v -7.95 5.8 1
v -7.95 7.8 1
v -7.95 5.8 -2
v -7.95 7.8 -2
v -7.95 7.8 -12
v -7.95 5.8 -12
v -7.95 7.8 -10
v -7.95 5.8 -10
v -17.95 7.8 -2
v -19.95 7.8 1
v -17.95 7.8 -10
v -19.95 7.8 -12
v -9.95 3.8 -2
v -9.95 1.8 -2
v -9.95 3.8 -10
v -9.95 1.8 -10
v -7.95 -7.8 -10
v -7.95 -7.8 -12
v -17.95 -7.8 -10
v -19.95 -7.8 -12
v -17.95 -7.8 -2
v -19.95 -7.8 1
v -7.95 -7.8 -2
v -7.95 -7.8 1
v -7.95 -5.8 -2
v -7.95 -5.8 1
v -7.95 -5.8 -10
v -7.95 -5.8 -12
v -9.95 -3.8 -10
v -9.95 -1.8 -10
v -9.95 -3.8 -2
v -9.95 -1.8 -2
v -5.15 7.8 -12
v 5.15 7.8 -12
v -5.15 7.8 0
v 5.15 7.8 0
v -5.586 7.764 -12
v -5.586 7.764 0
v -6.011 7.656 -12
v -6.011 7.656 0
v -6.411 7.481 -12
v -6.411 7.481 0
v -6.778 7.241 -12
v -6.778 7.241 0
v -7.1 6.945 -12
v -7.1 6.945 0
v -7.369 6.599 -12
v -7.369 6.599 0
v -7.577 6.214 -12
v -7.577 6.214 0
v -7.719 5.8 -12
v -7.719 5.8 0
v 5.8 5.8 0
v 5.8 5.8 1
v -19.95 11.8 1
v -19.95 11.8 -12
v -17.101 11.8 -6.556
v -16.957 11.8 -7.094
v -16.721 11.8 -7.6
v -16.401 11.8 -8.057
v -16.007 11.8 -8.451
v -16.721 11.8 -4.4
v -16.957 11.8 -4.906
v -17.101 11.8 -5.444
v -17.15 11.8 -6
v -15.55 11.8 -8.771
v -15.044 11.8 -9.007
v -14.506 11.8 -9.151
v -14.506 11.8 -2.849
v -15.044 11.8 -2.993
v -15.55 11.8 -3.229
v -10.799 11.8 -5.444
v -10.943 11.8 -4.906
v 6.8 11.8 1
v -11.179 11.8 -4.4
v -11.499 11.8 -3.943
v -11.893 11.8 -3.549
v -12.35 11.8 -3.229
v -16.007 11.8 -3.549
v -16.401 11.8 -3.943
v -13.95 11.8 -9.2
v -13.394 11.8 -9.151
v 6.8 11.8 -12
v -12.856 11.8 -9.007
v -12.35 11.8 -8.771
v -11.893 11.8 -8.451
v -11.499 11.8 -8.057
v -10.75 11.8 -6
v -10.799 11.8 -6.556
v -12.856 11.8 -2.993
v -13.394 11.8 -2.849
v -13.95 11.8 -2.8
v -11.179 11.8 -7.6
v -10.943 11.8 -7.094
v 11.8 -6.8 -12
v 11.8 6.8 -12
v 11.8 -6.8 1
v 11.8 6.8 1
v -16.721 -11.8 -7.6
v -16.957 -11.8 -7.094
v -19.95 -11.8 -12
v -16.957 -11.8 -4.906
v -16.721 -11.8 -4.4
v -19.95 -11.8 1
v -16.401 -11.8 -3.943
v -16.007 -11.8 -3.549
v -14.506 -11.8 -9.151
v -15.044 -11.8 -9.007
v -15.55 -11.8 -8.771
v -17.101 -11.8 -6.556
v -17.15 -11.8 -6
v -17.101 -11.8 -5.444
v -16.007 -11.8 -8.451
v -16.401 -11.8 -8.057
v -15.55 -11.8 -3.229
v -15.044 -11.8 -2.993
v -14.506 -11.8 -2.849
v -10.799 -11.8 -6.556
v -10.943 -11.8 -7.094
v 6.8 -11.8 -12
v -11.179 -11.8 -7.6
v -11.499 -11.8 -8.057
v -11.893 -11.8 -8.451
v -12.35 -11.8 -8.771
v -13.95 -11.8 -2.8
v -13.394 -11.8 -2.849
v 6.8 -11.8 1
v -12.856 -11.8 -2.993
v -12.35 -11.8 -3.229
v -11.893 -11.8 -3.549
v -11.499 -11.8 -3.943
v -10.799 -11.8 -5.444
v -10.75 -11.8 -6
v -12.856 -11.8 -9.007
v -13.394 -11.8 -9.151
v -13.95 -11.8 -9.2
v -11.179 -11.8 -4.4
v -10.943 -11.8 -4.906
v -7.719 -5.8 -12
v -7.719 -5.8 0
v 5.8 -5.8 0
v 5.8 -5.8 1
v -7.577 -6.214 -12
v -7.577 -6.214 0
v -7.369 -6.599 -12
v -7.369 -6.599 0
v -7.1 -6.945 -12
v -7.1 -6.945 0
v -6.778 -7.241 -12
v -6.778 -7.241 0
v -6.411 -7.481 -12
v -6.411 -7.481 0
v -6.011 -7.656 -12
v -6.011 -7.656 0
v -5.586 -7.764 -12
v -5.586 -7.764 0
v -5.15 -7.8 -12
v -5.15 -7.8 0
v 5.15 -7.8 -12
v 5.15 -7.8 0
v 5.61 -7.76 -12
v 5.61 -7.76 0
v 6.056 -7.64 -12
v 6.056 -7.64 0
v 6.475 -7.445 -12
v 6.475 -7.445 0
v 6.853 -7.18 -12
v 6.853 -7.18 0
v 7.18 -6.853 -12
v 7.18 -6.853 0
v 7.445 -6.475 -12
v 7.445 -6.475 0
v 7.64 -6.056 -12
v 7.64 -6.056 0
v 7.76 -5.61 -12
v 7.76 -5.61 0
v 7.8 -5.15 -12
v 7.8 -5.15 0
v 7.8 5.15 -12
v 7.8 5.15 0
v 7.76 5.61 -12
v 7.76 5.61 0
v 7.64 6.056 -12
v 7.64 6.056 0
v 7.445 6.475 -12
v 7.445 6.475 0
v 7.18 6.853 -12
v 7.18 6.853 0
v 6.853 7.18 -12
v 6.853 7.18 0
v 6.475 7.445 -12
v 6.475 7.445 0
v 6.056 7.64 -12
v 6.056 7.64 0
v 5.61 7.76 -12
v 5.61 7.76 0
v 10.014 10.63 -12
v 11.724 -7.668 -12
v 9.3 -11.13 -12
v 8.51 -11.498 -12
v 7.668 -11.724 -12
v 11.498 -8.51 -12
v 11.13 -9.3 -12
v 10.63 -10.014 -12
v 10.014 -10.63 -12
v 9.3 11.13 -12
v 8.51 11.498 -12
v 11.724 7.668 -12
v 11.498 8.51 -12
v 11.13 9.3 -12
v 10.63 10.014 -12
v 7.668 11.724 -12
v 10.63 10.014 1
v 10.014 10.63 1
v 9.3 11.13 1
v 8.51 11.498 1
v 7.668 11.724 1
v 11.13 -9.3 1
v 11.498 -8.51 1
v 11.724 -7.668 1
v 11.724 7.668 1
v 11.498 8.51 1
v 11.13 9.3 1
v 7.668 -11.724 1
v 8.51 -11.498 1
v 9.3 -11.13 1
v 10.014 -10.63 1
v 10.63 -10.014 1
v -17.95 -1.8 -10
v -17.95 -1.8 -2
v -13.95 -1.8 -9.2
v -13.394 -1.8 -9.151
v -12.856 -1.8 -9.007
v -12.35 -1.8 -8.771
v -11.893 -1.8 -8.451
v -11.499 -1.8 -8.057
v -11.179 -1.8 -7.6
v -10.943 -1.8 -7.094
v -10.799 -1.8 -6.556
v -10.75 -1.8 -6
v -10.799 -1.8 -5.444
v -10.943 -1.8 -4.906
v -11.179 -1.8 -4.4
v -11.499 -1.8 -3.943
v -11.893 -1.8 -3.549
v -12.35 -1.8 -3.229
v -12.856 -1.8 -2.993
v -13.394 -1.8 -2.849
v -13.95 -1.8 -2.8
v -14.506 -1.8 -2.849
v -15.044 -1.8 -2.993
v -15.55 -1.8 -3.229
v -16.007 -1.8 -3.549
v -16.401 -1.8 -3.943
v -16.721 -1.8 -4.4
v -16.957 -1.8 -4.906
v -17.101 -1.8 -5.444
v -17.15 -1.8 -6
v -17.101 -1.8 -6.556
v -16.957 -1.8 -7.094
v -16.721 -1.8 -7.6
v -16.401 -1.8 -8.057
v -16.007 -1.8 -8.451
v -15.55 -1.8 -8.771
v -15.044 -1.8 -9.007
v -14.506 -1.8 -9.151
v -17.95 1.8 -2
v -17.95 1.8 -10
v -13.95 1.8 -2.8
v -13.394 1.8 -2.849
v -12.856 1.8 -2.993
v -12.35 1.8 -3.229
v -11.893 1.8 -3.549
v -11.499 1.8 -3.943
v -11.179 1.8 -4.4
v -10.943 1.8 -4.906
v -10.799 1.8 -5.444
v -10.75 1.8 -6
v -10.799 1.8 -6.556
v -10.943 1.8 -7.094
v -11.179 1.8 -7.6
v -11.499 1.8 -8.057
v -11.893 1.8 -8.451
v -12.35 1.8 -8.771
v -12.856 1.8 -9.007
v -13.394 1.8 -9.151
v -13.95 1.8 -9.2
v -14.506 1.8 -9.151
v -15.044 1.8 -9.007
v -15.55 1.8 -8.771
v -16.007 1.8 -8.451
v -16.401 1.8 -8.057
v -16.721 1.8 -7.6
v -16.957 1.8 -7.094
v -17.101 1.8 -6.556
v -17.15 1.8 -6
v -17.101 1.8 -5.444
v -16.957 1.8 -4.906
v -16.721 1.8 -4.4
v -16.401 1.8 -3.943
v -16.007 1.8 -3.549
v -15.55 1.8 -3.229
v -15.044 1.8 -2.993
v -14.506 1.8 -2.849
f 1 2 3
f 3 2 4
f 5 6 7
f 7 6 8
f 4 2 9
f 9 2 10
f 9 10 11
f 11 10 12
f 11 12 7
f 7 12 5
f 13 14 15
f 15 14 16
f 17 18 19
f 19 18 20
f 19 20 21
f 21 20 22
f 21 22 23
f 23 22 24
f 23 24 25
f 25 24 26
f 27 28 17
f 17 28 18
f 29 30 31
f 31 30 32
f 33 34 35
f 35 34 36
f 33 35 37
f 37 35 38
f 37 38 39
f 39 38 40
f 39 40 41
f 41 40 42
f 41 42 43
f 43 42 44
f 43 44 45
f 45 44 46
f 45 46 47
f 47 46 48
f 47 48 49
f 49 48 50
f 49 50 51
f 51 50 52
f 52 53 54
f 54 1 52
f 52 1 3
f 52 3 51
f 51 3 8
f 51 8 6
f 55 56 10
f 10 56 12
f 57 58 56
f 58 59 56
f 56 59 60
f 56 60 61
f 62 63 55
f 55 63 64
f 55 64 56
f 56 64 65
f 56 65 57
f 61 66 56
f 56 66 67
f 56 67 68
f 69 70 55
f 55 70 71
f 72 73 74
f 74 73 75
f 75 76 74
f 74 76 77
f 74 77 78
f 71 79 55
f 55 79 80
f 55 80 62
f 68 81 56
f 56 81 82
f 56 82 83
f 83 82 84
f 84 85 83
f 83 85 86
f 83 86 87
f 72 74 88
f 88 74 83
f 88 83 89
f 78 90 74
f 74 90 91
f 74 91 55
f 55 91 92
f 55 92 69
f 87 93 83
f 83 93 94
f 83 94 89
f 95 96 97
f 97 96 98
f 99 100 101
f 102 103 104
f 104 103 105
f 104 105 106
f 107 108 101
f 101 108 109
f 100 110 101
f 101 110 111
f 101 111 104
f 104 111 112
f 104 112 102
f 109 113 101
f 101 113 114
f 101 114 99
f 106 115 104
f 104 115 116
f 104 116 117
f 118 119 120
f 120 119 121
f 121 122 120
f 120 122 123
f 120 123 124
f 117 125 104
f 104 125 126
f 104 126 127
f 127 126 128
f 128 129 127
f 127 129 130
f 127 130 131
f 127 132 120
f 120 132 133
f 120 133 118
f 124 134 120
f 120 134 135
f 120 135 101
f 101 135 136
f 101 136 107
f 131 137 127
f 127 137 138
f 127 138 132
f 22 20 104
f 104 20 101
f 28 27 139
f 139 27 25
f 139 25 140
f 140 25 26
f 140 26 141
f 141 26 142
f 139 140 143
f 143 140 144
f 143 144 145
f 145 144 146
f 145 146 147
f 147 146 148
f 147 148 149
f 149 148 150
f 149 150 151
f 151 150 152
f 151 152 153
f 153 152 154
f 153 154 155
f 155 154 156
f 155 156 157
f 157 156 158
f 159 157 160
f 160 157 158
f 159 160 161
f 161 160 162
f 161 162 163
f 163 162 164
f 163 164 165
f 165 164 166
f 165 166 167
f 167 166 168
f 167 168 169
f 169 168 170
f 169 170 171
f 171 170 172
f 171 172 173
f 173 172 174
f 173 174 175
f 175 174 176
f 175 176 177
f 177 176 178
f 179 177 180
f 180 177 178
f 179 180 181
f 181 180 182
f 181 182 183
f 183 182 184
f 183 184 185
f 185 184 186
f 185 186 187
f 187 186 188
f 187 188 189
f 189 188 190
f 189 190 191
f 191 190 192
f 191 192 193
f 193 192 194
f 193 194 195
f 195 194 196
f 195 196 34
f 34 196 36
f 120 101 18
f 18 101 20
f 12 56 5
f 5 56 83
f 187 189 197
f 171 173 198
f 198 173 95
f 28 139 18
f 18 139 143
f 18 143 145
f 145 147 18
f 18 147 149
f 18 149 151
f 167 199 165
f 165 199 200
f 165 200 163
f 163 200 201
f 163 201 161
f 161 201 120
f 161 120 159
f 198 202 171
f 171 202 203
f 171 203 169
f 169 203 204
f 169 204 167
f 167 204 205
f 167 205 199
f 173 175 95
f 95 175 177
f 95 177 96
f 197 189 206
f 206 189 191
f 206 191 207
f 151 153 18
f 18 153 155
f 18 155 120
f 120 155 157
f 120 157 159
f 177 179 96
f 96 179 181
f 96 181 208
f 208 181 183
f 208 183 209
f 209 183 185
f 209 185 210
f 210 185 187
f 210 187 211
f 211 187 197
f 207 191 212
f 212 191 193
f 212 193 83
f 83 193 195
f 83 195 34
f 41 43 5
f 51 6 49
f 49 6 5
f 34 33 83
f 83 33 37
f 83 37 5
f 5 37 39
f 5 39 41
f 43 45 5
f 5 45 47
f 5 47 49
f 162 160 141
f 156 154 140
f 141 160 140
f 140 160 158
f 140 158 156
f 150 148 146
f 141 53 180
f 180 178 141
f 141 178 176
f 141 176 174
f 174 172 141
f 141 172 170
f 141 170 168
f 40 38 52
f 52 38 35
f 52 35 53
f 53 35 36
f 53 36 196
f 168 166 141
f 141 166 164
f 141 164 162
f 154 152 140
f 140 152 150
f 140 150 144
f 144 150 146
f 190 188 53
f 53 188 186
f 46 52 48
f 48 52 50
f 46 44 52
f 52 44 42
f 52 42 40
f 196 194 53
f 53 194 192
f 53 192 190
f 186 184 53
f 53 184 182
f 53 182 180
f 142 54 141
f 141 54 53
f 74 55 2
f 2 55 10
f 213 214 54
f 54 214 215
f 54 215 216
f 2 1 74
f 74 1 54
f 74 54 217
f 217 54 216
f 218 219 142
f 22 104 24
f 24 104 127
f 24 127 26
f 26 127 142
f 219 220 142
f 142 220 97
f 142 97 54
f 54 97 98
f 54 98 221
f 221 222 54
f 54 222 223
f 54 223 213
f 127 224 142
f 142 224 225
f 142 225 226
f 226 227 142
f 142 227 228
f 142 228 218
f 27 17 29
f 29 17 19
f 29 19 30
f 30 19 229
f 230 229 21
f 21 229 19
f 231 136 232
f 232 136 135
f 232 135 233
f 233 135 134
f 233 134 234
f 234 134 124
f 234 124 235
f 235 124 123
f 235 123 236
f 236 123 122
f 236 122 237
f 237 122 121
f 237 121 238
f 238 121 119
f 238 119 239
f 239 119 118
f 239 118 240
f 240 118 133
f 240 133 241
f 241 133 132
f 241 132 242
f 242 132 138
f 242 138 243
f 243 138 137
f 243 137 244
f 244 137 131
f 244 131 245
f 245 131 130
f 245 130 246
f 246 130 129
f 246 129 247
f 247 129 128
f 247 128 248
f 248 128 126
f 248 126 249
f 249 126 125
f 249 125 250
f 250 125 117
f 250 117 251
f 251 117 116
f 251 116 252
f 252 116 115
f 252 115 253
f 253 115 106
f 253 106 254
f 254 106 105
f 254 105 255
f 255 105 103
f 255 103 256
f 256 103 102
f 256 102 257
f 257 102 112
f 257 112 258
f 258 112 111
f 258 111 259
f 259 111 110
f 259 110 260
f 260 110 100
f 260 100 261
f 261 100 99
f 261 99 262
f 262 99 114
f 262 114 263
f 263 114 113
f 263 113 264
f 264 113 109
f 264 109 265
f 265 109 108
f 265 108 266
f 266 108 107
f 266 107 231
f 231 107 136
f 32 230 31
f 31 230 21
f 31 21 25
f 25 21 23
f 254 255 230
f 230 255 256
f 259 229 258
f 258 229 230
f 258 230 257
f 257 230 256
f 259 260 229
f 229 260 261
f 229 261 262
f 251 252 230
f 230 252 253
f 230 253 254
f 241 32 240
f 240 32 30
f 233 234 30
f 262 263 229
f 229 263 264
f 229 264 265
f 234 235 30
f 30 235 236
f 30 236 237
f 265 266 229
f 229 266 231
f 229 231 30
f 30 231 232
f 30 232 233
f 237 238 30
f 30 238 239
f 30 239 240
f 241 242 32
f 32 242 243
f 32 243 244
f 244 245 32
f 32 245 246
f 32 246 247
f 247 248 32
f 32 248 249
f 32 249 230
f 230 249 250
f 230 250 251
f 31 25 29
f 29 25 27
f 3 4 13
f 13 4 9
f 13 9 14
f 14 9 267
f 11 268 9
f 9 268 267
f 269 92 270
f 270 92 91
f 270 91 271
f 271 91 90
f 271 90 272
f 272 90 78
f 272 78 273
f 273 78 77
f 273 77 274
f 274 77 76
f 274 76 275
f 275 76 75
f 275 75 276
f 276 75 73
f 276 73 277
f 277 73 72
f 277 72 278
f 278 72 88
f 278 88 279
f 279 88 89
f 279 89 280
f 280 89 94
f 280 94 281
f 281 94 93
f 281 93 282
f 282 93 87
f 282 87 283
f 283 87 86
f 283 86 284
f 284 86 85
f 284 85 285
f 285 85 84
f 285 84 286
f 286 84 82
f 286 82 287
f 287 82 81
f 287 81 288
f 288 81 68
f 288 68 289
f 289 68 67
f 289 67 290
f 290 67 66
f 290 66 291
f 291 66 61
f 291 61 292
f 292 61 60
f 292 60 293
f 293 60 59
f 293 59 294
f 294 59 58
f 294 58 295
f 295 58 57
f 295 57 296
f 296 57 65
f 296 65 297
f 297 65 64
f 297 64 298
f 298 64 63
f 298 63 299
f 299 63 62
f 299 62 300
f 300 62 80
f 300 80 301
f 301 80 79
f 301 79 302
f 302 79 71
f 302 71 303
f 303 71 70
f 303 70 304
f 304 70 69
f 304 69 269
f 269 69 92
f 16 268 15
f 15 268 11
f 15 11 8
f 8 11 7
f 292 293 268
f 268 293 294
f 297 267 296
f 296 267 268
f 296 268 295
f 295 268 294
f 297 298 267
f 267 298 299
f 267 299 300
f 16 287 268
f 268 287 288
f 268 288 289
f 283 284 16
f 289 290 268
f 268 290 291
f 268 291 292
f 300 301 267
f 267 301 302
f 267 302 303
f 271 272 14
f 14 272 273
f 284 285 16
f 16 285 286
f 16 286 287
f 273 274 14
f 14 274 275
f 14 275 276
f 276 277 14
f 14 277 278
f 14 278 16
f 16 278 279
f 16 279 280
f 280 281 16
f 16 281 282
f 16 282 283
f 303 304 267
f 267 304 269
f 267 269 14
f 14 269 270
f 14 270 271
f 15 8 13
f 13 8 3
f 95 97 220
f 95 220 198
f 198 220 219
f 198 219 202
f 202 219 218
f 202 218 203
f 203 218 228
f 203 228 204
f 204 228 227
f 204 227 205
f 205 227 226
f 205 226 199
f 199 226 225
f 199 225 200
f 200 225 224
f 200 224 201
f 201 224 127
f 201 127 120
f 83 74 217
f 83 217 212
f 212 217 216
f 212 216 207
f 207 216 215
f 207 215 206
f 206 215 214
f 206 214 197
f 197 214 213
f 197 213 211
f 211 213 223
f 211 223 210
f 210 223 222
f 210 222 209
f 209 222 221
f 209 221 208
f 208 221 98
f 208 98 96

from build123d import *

# Parameters (mm, degrees)
EXTRUDE_1_DEPTH     = 12
EXTRUDE_2_DEPTH     = 1
SKETCH_2_W          = 8
SKETCH_2_H          = 8
SKETCH_2_R          = 3.2
EXTRUDE_3_DEPTH     = 10
CUT_EXTRUDE_2_REACH = 35.151
SKETCH_2_2_R        = 3.2
SKETCH_2_4_W        = 2
SKETCH_2_4_H        = 8
EXTRUDE_4_DEPTH     = 6
CHAMFER_1_SIZE      = 2
EXTRUDE_START       = -19.6
SKETCH_2_5_W        = 2
SKETCH_2_5_H        = 8
EXTRUDE_5_DEPTH     = 2
CHAMFER_2_SIZE      = 2
FILLET_1_R          = 5


with BuildPart() as part:
    # 草图1 → 凸台-拉伸1 (new body)
    with BuildSketch(Plane.XY):
        Polygon((-19.95, -7.8), (7.8, -7.8), (7.8, 7.8), (-19.95, 7.8), (-19.95, 11.8), (11.8, 11.8), (11.8, -11.8), (-19.95, -11.8), align=None)
        with BuildLine():
            Line((-5.15, 7.8), (-7.95, 7.8))
            Line((-7.95, 7.8), (-7.95, 5.8))
            Line((-7.95, 5.8), (-7.719046516, 5.8))
            ThreePointArc((-7.719046516, 5.8), (-6.77788206, 7.241052367), (-5.15, 7.8))
        make_face()
        with BuildLine():
            Line((-7.95, -5.8), (-7.95, -7.8))
            Line((-7.95, -7.8), (-5.15, -7.8))
            ThreePointArc((-5.15, -7.8), (-6.77788206, -7.241052367), (-7.719046516, -5.8))
            Line((-7.719046516, -5.8), (-7.95, -5.8))
        make_face()
        with BuildLine():
            ThreePointArc((7.8, -5.15), (7.02383297, -7.02383297), (5.15, -7.8))
            Line((5.15, -7.8), (7.8, -7.8))
            Line((7.8, -7.8), (7.8, -5.15))
        make_face()
        with BuildLine():
            ThreePointArc((5.15, 7.8), (7.02383297, 7.02383297), (7.8, 5.15))
            Line((7.8, 5.15), (7.8, 7.8))
            Line((7.8, 7.8), (5.15, 7.8))
        make_face()
    extrude(amount=-EXTRUDE_1_DEPTH)

    # 草图1<3> → 凸台-拉伸2 (add)
    with BuildSketch(Plane.XY):
        Polygon((-7.95, -7.8), (-19.95, -7.8), (-19.95, -11.8), (11.8, -11.8), (11.8, 11.8), (-19.95, 11.8), (-19.95, 7.8), (-7.95, 7.8), (-7.95, 5.8), (5.8, 5.8), (5.8, -5.8), (-7.95, -5.8), align=None)
    extrude(amount=EXTRUDE_2_DEPTH)

    # 草图2 → 凸台-拉伸3 (add)
    with BuildSketch(Plane.XZ.offset(11.8)):
        with Locations((-13.95, -6)):
            Rectangle(SKETCH_2_W, SKETCH_2_H)
        with Locations(Location((-13.95, -6, 0), (0, 0, 270))):
            Circle(SKETCH_2_R, mode=Mode.SUBTRACT)
    extrude_3 = extrude(amount=-EXTRUDE_3_DEPTH)

    # 草图2<2> → 切除-拉伸2 (cut, up to next)
    with BuildSketch(Plane.XZ.offset(11.8), mode=Mode.PRIVATE) as cut_extrude_2_sk1:
        with Locations(Location((-13.95, -6, 0), (0, 0, 270))):
            Circle(SKETCH_2_2_R)
    cut_extrude_2_tool1 = extrude(cut_extrude_2_sk1.sketch, amount=-CUT_EXTRUDE_2_REACH, mode=Mode.PRIVATE) & part.part
    cut_extrude_2 = cut_extrude_2_tool1.solids().sort_by_distance((-13.95, -11.8, -6))[0]
    add(cut_extrude_2, mode=Mode.SUBTRACT)

    # 草图2<4> → 凸台-拉伸4 (add)
    with BuildSketch(Plane.XZ.offset(11.8)):
        with Locations((-8.95, -6)):
            Rectangle(SKETCH_2_4_W, SKETCH_2_4_H)
    extrude(amount=-EXTRUDE_4_DEPTH)

    # 倒角1
    chamfer_1_edges = [part.edges().sort_by_distance(p)[0] for p in [
        (-9.95, -5.8, -6),
    ]]
    chamfer(chamfer_1_edges, length=CHAMFER_1_SIZE)

    # 镜向6: 凸台-拉伸3, 切除-拉伸2 across plane
    add(extrude_3.mirror(Plane.ZX))
    add(cut_extrude_2.mirror(Plane.ZX), mode=Mode.SUBTRACT)

    # 草图2<5> → 凸台-拉伸5 (add)
    with BuildSketch(Plane.XZ.offset(11.8).offset(EXTRUDE_START)):
        with Locations((-8.95, -6)):
            Rectangle(SKETCH_2_5_W, SKETCH_2_5_H)
    extrude(amount=EXTRUDE_5_DEPTH)

    # 倒角2
    chamfer_2_edges = [part.edges().sort_by_distance(p)[0] for p in [
        (-9.95, 5.8, -6),
    ]]
    chamfer(chamfer_2_edges, length=CHAMFER_2_SIZE)

    # 圆角1
    fillet_1_edges = [part.edges().sort_by_distance(p)[0] for p in [
        (11.8, 11.8, -5.5),
        (11.8, -11.8, -5.5),
    ]]
    fillet(fillet_1_edges, radius=FILLET_1_R)


solid = part.part
